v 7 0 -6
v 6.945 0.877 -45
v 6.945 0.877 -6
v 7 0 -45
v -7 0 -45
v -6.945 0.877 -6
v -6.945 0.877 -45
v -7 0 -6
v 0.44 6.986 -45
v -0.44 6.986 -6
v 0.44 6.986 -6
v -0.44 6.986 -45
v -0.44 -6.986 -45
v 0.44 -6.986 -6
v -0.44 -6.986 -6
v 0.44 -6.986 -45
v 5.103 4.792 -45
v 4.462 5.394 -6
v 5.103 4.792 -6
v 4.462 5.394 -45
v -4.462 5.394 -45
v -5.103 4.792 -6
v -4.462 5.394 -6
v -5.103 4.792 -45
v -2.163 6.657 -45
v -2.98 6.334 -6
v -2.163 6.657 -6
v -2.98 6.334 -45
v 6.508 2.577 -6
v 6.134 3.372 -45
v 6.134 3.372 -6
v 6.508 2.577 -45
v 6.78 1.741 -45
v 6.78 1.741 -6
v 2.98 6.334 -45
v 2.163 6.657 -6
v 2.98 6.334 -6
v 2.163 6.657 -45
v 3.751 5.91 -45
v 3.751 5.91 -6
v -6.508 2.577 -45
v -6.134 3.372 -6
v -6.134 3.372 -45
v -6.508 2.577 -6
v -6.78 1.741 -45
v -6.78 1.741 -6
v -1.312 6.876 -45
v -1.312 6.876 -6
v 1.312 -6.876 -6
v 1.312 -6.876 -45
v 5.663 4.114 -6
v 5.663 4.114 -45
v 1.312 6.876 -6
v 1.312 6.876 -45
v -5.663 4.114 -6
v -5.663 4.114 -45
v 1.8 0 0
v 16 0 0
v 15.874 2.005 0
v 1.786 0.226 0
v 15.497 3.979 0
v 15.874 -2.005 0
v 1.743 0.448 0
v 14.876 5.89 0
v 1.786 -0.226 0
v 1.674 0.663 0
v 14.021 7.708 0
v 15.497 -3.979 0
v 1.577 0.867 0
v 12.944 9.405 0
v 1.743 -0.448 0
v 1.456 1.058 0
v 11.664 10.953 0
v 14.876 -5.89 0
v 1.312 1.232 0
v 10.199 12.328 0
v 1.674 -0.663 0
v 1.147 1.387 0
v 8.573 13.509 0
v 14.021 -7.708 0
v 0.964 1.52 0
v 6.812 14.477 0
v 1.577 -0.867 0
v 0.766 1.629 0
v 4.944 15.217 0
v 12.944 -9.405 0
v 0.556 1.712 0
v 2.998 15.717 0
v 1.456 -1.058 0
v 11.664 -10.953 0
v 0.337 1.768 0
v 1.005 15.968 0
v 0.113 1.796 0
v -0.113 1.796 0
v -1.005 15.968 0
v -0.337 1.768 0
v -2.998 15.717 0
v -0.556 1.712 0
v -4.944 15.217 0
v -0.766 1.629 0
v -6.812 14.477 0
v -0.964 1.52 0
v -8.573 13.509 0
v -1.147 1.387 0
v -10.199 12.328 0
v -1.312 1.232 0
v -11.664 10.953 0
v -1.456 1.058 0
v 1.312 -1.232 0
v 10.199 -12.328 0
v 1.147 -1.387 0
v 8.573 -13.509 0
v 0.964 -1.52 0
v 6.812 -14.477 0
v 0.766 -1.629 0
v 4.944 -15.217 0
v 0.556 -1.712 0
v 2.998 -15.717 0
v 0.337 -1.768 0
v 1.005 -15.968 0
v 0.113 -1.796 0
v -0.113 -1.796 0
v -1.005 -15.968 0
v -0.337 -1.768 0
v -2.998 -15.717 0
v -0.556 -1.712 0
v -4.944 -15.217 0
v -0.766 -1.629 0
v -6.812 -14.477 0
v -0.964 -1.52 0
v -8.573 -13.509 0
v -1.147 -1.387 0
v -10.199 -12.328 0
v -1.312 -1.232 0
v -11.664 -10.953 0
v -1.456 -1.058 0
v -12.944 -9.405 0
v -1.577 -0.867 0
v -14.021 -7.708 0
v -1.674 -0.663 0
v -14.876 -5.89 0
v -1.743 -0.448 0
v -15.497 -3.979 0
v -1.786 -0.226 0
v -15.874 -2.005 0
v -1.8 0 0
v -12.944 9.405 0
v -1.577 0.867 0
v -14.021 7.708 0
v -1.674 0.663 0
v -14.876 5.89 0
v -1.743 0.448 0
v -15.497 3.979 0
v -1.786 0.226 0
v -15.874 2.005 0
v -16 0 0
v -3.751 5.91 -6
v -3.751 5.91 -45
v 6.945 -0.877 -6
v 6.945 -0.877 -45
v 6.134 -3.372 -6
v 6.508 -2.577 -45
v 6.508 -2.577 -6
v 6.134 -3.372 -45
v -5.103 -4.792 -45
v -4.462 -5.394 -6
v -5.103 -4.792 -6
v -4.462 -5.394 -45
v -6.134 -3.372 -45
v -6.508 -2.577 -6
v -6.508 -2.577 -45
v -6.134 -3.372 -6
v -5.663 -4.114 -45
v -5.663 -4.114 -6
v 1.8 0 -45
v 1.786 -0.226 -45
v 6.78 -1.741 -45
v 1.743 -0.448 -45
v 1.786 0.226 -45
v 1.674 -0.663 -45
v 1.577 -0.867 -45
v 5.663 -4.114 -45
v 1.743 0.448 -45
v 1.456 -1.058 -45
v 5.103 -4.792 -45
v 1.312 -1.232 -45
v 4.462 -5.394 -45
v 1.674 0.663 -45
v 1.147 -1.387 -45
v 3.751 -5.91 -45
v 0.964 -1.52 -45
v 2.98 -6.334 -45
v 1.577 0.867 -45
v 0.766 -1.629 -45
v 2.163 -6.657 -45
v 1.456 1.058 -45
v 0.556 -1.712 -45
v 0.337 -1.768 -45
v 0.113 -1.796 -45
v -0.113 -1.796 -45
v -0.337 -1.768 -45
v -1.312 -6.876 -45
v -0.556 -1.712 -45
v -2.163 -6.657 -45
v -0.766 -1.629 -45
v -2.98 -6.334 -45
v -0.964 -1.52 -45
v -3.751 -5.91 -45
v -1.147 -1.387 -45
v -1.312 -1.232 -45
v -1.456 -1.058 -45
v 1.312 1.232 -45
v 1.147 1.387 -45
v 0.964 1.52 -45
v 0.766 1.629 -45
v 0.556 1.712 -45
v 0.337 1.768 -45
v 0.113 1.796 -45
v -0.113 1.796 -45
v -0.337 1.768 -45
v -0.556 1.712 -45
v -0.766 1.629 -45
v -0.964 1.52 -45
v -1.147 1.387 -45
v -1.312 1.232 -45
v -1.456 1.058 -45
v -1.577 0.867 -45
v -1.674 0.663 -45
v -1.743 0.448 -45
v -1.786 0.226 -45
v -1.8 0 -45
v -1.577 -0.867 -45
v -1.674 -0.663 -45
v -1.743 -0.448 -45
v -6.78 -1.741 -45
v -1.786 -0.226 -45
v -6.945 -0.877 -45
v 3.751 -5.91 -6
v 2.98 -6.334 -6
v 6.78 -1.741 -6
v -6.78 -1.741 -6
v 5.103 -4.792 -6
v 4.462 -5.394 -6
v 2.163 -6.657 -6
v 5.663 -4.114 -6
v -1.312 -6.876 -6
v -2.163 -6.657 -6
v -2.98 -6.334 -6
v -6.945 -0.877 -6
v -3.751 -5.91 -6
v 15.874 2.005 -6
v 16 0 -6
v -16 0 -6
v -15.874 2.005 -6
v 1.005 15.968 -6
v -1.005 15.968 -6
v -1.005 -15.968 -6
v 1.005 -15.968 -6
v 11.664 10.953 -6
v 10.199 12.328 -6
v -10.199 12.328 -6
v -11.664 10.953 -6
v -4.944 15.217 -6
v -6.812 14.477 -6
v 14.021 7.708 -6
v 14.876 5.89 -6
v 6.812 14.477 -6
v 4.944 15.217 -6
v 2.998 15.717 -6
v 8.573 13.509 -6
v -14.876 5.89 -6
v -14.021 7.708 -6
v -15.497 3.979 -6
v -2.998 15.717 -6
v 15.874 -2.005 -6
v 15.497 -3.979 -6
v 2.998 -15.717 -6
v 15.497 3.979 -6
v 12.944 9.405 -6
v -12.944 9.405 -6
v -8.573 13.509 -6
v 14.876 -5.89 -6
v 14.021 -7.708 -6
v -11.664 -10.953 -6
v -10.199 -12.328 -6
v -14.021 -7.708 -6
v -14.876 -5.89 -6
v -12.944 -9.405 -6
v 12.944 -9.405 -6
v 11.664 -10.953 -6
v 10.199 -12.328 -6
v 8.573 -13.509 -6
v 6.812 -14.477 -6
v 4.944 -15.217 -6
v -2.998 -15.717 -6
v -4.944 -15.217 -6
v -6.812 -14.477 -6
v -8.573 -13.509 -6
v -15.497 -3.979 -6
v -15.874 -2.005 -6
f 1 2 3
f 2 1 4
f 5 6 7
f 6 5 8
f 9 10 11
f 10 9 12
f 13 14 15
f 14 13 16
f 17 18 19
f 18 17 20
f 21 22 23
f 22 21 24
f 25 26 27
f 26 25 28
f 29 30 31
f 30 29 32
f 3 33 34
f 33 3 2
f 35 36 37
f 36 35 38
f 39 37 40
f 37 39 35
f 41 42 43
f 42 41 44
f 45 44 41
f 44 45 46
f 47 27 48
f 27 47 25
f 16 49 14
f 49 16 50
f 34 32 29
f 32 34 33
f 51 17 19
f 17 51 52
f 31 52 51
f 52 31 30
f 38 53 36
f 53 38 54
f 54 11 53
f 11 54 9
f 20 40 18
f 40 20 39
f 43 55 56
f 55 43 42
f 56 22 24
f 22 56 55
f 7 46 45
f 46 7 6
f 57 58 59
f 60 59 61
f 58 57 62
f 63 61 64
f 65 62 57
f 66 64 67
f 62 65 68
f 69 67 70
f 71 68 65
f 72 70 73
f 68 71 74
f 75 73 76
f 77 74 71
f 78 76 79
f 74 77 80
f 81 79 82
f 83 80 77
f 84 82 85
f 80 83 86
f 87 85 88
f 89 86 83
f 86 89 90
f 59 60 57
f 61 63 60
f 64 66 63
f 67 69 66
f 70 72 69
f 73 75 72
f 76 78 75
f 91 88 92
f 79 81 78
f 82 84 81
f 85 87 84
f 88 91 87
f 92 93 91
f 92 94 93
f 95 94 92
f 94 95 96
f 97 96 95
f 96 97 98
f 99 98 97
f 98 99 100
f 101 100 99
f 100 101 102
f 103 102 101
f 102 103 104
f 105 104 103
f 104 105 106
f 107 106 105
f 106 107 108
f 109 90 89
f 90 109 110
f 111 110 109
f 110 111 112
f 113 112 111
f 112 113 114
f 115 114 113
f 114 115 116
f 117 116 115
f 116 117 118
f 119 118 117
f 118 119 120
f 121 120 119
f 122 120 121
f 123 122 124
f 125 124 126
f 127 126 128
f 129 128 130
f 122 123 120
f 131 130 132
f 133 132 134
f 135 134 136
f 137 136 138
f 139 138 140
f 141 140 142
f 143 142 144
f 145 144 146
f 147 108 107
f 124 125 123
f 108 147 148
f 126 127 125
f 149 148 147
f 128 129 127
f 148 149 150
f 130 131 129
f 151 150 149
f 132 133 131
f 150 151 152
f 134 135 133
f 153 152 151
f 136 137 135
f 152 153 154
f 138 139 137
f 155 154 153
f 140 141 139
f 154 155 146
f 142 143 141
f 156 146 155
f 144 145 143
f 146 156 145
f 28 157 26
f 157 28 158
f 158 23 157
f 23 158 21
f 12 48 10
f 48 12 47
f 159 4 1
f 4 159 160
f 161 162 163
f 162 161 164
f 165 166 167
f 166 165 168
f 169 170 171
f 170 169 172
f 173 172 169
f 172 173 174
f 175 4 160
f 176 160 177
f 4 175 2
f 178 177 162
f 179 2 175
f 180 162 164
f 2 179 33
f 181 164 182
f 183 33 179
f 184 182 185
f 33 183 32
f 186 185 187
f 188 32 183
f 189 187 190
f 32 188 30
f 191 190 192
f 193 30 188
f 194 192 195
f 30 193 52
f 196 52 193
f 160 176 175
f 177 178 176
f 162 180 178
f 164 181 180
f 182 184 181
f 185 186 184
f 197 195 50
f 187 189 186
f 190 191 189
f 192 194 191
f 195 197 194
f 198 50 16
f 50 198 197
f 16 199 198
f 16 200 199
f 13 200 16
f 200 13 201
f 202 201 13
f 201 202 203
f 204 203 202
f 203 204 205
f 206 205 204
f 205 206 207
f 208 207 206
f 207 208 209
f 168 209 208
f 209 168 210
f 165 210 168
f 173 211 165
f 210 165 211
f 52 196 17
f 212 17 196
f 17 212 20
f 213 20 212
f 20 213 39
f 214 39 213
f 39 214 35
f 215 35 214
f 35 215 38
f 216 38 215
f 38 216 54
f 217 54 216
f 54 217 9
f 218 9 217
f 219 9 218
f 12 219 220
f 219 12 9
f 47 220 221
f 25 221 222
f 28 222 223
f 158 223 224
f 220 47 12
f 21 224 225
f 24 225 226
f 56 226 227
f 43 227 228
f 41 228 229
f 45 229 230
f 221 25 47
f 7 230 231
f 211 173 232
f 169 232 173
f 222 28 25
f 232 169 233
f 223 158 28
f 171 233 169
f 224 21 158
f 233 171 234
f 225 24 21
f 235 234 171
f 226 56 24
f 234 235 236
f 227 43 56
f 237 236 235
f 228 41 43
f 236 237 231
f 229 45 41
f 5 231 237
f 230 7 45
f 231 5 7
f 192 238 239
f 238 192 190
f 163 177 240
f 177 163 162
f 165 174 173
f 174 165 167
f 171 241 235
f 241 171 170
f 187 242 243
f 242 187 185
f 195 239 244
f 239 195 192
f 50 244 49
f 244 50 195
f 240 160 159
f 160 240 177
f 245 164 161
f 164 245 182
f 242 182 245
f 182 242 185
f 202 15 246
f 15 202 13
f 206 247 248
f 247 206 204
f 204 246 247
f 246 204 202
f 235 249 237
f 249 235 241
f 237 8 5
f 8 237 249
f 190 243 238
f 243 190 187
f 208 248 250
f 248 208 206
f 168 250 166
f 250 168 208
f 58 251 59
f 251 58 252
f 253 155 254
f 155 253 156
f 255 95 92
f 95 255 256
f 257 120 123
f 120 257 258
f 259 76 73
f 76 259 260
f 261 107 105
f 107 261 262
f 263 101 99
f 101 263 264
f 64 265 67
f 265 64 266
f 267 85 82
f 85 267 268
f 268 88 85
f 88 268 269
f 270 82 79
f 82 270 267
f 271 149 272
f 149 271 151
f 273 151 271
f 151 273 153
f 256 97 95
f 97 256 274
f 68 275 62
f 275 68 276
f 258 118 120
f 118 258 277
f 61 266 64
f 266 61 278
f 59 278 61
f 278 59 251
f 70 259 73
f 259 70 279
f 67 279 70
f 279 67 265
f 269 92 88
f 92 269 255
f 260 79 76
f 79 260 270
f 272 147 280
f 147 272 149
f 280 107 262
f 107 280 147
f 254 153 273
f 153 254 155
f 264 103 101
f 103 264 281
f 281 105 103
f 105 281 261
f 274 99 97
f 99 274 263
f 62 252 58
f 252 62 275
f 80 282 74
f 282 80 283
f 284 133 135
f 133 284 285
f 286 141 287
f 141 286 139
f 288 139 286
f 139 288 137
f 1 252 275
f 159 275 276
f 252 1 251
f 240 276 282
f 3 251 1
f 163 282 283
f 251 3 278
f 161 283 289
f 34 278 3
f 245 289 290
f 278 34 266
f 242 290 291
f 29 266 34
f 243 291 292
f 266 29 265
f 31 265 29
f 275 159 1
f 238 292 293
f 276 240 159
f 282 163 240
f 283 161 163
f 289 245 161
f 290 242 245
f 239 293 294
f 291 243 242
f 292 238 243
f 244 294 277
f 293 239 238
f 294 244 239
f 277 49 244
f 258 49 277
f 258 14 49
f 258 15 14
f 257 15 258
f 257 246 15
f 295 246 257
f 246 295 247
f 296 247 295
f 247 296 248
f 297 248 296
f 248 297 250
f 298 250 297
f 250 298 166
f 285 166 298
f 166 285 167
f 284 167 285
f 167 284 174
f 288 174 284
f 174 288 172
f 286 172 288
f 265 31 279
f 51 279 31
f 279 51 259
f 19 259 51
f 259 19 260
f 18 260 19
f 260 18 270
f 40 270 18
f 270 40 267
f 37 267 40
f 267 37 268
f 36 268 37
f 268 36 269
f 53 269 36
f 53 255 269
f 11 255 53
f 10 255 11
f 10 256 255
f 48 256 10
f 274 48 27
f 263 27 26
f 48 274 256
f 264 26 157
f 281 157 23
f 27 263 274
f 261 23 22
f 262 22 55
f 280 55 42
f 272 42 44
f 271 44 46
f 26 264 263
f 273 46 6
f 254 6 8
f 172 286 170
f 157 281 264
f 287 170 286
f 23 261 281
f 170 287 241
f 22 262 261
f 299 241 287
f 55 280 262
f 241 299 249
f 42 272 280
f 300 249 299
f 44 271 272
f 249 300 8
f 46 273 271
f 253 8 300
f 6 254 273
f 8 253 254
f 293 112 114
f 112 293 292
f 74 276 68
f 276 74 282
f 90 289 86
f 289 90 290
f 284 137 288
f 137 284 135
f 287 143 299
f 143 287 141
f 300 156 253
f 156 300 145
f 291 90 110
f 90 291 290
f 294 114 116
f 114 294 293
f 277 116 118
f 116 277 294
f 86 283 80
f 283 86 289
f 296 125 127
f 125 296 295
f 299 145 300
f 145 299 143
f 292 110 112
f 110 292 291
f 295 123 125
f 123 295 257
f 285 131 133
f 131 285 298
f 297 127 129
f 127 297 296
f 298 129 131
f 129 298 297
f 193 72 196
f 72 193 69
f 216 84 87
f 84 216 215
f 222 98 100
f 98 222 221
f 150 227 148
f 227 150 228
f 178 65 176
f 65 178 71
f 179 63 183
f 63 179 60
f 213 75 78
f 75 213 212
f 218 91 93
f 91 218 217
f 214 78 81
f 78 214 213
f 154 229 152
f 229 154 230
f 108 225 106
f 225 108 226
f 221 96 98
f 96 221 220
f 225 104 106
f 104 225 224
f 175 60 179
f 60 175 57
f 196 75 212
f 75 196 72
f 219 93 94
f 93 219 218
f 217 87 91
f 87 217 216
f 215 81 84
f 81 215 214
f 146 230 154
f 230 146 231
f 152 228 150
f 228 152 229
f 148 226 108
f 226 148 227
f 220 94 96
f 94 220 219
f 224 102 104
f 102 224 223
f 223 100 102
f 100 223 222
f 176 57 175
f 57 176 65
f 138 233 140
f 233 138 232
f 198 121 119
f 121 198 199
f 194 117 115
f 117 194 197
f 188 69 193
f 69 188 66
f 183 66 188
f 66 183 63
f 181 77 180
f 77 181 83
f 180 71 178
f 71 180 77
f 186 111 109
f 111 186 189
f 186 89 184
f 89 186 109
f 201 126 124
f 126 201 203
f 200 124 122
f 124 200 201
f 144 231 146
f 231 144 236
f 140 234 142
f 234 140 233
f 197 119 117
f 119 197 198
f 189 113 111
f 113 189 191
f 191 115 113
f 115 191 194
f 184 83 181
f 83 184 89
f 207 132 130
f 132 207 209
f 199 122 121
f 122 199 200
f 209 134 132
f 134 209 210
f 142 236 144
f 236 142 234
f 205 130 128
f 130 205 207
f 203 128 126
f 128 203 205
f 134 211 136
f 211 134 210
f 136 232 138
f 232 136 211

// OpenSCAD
$fn = 50;


difference() {
	union() {
		translate(v = [0, 0, -45.0000000000]) {
			cylinder(h = 45, r = 7.0000000000);
		}
		translate(v = [0, 0, -6.0000000000]) {
			cylinder(h = 6, r = 16.0000000000);
		}
	}
	union() {
		#translate(v = [0, 0, -45]) {
			cylinder(h = 45, r = 1.8000000000);
		}
	}
}
